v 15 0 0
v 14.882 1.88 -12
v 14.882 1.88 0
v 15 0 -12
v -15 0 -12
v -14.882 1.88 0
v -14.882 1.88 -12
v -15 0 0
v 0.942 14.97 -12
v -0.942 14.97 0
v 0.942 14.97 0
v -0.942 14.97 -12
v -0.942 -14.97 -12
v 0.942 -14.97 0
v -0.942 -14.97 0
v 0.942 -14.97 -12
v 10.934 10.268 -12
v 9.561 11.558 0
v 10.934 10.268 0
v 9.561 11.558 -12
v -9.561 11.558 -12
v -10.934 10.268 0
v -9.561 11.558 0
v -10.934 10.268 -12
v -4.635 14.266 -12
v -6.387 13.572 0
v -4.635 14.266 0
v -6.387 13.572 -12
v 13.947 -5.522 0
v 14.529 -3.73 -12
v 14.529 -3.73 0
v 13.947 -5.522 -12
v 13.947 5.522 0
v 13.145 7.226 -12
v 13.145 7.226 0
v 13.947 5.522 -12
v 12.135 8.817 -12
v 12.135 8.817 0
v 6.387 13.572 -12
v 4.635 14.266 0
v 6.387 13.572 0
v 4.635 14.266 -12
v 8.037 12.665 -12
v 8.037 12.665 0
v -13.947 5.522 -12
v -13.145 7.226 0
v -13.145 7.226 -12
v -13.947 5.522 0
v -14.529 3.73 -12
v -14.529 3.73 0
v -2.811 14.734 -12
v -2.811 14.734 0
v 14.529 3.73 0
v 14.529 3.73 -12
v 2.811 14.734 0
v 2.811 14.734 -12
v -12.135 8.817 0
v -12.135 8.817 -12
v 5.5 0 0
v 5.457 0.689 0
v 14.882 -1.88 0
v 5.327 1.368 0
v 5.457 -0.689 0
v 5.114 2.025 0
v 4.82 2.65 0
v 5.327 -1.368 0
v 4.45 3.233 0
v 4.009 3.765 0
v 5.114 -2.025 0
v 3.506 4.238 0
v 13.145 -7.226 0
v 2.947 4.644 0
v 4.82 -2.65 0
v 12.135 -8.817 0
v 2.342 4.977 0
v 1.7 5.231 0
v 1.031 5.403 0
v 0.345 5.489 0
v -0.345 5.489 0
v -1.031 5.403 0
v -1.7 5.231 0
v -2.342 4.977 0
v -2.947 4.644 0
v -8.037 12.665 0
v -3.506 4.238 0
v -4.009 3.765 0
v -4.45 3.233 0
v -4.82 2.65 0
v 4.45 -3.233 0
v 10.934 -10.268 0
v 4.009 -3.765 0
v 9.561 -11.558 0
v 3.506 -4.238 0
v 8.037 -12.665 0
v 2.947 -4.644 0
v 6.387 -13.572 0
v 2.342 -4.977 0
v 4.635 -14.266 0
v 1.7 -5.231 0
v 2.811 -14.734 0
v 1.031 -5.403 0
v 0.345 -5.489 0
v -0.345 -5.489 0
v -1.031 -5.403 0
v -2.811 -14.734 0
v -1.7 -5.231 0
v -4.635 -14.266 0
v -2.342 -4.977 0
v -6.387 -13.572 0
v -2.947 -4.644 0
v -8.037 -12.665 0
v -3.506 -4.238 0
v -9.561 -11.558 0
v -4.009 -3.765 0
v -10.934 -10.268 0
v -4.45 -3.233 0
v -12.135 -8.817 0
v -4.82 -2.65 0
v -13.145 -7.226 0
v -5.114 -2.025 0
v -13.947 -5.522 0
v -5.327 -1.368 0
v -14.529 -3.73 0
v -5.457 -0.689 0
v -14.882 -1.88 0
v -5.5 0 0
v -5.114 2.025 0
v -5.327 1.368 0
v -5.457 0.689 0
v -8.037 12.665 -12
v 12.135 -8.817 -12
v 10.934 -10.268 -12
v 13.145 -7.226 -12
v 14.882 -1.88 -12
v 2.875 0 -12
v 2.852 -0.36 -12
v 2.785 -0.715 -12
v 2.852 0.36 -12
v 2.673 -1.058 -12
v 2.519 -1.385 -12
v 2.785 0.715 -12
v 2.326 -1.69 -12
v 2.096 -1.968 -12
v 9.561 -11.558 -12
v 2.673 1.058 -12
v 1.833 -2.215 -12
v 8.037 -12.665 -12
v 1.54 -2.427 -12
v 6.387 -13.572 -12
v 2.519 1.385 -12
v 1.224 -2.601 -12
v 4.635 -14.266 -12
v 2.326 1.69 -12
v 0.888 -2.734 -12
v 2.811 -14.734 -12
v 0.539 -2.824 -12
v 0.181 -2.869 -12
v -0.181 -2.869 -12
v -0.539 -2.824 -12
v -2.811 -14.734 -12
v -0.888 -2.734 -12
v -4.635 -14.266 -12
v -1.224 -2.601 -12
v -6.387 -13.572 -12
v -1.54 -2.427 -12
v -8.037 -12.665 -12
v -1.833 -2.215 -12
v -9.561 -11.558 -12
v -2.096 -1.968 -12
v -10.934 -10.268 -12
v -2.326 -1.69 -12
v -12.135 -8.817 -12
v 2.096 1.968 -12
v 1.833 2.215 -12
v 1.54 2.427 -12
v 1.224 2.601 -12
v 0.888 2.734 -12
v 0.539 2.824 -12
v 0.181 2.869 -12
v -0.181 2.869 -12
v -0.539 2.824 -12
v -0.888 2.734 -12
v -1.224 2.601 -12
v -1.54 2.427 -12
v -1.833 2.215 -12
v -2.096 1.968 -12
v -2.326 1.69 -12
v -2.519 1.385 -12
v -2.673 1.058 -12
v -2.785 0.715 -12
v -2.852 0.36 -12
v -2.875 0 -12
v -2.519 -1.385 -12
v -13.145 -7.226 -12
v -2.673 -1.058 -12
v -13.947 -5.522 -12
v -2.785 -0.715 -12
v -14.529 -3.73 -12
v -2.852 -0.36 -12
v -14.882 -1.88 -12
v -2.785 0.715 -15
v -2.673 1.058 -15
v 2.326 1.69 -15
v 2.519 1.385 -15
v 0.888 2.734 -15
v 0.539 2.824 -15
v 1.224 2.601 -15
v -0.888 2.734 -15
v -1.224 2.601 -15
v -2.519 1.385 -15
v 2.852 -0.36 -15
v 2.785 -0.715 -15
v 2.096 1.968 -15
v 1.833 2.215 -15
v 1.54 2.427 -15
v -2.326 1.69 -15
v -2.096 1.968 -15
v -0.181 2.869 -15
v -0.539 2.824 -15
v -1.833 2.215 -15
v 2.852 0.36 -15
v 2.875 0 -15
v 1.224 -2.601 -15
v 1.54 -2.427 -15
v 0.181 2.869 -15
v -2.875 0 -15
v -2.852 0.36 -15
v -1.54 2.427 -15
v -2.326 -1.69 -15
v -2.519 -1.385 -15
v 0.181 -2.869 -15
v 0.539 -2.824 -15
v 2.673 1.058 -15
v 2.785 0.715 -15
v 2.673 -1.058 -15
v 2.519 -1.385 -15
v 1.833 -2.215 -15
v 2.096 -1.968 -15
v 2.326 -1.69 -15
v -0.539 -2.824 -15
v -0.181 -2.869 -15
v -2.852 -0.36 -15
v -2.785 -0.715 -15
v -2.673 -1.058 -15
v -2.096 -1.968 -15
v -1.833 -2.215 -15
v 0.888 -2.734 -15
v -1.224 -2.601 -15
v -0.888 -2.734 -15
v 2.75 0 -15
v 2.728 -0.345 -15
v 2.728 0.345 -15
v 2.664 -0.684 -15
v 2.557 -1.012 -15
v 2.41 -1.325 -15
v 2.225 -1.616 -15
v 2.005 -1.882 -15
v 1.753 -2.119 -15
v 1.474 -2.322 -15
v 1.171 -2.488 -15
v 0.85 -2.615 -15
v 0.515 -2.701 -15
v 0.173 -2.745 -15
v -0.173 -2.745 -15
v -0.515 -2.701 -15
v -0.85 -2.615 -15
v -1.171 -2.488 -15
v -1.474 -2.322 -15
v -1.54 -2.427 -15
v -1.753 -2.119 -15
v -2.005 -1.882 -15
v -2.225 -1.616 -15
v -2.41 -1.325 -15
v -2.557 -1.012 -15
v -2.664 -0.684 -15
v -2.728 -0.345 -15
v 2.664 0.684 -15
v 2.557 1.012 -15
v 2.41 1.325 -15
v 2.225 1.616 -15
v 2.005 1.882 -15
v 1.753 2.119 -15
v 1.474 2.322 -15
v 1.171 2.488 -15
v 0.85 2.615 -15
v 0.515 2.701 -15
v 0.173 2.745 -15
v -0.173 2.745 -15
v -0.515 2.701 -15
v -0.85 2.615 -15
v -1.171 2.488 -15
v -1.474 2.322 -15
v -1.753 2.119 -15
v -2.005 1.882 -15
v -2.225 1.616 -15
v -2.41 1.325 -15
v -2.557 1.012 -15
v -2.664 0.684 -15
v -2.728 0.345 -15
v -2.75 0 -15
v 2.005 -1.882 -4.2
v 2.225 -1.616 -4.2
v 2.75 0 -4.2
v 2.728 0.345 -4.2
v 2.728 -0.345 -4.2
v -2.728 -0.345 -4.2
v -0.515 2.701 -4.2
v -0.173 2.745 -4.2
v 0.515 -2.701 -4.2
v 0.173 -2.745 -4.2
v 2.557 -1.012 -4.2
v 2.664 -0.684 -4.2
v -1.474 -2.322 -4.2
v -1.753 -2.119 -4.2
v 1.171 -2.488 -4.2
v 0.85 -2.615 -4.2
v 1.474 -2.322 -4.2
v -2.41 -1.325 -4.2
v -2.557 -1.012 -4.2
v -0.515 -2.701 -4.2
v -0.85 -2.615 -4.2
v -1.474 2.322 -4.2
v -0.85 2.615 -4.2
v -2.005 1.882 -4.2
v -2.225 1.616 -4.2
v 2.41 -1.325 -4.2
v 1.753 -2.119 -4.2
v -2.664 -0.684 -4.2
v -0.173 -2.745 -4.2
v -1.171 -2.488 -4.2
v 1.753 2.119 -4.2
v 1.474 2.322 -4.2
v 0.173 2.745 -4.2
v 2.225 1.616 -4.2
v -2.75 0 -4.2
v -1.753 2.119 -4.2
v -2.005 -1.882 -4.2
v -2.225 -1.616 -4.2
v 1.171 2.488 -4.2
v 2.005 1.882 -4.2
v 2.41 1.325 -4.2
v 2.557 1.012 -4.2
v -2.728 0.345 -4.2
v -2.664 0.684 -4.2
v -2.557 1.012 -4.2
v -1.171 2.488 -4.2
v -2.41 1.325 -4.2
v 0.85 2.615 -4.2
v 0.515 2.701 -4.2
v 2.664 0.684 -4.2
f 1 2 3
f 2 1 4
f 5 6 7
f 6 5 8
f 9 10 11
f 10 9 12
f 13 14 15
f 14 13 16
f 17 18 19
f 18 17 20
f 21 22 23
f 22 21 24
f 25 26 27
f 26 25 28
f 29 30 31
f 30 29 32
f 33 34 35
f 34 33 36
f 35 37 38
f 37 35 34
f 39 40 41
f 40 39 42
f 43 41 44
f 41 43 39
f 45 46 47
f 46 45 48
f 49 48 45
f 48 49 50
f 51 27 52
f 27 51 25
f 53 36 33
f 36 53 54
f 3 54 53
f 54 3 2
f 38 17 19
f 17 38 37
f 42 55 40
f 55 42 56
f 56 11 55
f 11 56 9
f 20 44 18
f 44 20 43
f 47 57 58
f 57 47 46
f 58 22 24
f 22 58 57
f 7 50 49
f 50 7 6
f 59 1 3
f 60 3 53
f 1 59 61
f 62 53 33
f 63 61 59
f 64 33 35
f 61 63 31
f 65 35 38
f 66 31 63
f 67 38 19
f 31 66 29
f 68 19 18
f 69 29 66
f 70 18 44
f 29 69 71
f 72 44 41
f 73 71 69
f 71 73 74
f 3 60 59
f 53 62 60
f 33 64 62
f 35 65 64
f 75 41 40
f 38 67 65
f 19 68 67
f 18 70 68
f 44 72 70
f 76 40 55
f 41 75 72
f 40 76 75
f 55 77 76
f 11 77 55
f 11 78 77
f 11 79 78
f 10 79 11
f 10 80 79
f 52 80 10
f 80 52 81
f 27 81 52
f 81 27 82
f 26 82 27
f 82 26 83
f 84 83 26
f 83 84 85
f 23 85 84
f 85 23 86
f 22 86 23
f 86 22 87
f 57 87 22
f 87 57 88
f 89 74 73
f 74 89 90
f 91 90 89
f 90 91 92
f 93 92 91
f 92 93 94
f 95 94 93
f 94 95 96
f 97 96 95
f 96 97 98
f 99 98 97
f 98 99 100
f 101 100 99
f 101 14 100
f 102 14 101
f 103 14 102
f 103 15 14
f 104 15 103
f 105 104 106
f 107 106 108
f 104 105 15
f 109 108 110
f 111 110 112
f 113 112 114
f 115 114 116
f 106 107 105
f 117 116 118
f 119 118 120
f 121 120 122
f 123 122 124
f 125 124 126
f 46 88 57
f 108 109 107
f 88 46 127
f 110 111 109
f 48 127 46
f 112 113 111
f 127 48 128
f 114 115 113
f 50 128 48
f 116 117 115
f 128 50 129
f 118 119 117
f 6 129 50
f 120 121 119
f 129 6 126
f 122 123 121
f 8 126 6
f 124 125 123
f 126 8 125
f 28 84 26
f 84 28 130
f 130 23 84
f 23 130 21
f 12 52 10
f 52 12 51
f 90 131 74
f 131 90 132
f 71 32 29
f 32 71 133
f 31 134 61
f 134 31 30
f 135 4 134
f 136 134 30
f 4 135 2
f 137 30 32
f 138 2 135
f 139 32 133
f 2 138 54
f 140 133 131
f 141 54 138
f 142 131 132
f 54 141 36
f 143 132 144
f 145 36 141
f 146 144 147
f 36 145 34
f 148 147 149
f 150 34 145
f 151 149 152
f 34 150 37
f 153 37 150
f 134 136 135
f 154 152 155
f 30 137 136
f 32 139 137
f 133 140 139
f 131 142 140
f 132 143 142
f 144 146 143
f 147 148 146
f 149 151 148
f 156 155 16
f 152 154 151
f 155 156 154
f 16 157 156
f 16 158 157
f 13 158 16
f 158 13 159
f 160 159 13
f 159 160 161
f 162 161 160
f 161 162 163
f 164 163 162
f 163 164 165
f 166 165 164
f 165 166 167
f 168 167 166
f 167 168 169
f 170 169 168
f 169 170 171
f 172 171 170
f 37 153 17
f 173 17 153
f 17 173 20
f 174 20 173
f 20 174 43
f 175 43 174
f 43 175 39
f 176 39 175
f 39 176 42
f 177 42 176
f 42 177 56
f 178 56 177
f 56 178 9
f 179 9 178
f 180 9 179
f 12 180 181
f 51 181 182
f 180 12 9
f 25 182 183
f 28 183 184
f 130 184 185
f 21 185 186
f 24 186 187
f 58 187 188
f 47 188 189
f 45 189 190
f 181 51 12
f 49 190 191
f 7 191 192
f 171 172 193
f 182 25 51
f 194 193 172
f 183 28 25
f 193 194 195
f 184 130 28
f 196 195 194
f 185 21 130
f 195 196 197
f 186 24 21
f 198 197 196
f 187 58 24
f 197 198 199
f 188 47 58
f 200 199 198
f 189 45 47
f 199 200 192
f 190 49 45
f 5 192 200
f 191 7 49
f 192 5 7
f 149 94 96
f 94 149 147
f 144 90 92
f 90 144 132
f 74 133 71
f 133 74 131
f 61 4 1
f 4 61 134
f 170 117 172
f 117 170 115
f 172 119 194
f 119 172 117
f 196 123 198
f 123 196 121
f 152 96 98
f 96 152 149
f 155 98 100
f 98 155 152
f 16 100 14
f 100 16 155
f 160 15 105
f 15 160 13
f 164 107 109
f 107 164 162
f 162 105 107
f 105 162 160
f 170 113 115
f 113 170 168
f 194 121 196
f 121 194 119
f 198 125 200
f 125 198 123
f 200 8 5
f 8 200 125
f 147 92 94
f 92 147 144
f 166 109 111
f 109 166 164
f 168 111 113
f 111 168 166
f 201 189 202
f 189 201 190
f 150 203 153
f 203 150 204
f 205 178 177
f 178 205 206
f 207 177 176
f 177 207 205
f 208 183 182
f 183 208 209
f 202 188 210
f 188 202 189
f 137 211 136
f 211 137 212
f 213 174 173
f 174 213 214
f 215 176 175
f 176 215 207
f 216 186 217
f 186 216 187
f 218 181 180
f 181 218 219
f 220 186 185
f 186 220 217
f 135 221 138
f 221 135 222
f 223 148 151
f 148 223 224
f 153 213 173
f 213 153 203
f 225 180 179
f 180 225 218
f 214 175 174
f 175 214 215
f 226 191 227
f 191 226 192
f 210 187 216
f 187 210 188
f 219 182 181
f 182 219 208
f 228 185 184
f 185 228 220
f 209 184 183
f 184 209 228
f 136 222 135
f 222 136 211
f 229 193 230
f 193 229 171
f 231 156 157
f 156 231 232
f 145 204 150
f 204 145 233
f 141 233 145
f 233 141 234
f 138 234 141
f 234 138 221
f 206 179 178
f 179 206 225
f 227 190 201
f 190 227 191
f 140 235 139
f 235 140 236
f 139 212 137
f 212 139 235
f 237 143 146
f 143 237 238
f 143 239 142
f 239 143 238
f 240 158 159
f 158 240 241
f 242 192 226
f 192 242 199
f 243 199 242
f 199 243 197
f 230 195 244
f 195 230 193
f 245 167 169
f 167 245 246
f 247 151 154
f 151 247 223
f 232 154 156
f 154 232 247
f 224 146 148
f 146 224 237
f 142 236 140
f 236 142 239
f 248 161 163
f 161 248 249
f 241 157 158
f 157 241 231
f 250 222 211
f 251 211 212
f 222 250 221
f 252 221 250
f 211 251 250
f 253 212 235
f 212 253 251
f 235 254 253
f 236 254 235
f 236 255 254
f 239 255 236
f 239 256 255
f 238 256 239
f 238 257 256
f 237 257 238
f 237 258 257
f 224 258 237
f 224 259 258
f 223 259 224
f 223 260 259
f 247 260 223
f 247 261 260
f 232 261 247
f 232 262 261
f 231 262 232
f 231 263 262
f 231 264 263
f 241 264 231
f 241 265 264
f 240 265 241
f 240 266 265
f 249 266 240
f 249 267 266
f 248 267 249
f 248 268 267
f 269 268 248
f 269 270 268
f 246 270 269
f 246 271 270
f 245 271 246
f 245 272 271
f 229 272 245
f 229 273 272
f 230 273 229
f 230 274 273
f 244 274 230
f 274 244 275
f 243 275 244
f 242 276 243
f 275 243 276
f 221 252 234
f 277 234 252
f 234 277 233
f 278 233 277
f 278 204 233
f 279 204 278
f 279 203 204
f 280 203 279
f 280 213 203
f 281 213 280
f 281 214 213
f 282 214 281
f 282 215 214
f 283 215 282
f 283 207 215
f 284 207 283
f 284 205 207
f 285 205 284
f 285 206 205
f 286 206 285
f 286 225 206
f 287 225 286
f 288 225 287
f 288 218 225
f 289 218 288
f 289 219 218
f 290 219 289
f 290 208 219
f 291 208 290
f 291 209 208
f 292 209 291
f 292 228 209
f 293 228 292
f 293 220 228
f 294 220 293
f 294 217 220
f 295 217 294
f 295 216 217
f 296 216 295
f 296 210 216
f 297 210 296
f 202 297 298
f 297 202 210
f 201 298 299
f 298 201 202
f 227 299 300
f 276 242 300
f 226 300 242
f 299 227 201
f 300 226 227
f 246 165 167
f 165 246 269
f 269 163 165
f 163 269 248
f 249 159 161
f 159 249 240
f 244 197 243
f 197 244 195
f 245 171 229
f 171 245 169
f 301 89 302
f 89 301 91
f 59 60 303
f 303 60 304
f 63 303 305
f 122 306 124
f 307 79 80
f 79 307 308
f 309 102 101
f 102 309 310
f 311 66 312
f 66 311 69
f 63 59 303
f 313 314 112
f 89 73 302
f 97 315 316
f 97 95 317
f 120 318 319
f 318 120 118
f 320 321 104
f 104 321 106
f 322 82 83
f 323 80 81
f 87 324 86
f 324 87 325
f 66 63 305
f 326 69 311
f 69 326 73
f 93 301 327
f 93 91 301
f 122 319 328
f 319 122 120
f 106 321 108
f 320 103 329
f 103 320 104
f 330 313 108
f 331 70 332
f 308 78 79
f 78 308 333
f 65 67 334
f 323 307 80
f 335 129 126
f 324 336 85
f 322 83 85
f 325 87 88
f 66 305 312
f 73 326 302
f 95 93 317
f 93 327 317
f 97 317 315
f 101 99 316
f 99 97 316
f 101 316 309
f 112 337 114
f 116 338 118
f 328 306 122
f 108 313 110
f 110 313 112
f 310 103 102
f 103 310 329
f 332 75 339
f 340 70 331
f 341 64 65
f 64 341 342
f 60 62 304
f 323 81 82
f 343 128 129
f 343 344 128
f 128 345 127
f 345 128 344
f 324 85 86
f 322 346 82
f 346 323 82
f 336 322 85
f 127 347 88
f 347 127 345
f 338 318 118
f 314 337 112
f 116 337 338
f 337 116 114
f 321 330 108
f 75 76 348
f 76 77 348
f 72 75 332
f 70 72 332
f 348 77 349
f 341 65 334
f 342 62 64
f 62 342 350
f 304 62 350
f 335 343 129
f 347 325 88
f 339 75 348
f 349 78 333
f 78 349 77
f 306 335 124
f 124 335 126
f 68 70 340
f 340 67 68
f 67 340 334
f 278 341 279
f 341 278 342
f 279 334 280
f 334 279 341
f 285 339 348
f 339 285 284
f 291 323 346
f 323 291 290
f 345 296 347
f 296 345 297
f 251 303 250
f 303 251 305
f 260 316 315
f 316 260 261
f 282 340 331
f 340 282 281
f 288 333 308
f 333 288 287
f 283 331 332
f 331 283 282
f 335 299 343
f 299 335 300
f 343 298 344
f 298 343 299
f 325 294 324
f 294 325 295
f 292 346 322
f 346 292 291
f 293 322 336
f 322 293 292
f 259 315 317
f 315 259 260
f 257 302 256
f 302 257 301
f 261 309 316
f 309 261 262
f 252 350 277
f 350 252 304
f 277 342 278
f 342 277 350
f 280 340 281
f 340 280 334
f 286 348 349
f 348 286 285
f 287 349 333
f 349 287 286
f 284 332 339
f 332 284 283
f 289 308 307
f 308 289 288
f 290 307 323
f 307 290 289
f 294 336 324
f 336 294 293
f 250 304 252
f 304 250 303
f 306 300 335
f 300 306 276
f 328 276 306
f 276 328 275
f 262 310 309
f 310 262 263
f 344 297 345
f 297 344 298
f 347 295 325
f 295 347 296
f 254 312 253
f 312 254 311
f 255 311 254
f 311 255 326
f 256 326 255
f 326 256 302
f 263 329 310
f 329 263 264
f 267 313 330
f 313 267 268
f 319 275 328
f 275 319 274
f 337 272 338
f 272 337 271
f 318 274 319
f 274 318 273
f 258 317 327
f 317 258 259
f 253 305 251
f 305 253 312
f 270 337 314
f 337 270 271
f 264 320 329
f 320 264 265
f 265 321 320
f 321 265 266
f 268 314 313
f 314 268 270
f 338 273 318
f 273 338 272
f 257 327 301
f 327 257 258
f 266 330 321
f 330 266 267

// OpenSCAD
$fn = 50;


difference() {
	union() {
		translate(v = [0, 0, -12.0000000000]) {
			cylinder(h = 12, r = 15.0000000000);
		}
		translate(v = [0, 0, -15.0000000000]) {
			cylinder(h = 15, r = 2.8750000000);
		}
	}
	union() {
		translate(v = [0, 0, 0]) {
			rotate(a = [0, 0, 0]) {
				difference() {
					union() {
						translate(v = [0, 0, -15.0000000000]) {
							cylinder(h = 15, r = 2.2500000000);
						}
						translate(v = [0, 0, -4.2000000000]) {
							cylinder(h = 4.2000000000, r1 = 2.7500000000, r2 = 5.5000000000);
						}
						translate(v = [0, 0, -15.0000000000]) {
							cylinder(h = 15, r = 2.7500000000);
						}
						translate(v = [0, 0, -15.0000000000]) {
							cylinder(h = 15, r = 2.2500000000);
						}
					}
					union();
				}
			}
		}
	}
}
